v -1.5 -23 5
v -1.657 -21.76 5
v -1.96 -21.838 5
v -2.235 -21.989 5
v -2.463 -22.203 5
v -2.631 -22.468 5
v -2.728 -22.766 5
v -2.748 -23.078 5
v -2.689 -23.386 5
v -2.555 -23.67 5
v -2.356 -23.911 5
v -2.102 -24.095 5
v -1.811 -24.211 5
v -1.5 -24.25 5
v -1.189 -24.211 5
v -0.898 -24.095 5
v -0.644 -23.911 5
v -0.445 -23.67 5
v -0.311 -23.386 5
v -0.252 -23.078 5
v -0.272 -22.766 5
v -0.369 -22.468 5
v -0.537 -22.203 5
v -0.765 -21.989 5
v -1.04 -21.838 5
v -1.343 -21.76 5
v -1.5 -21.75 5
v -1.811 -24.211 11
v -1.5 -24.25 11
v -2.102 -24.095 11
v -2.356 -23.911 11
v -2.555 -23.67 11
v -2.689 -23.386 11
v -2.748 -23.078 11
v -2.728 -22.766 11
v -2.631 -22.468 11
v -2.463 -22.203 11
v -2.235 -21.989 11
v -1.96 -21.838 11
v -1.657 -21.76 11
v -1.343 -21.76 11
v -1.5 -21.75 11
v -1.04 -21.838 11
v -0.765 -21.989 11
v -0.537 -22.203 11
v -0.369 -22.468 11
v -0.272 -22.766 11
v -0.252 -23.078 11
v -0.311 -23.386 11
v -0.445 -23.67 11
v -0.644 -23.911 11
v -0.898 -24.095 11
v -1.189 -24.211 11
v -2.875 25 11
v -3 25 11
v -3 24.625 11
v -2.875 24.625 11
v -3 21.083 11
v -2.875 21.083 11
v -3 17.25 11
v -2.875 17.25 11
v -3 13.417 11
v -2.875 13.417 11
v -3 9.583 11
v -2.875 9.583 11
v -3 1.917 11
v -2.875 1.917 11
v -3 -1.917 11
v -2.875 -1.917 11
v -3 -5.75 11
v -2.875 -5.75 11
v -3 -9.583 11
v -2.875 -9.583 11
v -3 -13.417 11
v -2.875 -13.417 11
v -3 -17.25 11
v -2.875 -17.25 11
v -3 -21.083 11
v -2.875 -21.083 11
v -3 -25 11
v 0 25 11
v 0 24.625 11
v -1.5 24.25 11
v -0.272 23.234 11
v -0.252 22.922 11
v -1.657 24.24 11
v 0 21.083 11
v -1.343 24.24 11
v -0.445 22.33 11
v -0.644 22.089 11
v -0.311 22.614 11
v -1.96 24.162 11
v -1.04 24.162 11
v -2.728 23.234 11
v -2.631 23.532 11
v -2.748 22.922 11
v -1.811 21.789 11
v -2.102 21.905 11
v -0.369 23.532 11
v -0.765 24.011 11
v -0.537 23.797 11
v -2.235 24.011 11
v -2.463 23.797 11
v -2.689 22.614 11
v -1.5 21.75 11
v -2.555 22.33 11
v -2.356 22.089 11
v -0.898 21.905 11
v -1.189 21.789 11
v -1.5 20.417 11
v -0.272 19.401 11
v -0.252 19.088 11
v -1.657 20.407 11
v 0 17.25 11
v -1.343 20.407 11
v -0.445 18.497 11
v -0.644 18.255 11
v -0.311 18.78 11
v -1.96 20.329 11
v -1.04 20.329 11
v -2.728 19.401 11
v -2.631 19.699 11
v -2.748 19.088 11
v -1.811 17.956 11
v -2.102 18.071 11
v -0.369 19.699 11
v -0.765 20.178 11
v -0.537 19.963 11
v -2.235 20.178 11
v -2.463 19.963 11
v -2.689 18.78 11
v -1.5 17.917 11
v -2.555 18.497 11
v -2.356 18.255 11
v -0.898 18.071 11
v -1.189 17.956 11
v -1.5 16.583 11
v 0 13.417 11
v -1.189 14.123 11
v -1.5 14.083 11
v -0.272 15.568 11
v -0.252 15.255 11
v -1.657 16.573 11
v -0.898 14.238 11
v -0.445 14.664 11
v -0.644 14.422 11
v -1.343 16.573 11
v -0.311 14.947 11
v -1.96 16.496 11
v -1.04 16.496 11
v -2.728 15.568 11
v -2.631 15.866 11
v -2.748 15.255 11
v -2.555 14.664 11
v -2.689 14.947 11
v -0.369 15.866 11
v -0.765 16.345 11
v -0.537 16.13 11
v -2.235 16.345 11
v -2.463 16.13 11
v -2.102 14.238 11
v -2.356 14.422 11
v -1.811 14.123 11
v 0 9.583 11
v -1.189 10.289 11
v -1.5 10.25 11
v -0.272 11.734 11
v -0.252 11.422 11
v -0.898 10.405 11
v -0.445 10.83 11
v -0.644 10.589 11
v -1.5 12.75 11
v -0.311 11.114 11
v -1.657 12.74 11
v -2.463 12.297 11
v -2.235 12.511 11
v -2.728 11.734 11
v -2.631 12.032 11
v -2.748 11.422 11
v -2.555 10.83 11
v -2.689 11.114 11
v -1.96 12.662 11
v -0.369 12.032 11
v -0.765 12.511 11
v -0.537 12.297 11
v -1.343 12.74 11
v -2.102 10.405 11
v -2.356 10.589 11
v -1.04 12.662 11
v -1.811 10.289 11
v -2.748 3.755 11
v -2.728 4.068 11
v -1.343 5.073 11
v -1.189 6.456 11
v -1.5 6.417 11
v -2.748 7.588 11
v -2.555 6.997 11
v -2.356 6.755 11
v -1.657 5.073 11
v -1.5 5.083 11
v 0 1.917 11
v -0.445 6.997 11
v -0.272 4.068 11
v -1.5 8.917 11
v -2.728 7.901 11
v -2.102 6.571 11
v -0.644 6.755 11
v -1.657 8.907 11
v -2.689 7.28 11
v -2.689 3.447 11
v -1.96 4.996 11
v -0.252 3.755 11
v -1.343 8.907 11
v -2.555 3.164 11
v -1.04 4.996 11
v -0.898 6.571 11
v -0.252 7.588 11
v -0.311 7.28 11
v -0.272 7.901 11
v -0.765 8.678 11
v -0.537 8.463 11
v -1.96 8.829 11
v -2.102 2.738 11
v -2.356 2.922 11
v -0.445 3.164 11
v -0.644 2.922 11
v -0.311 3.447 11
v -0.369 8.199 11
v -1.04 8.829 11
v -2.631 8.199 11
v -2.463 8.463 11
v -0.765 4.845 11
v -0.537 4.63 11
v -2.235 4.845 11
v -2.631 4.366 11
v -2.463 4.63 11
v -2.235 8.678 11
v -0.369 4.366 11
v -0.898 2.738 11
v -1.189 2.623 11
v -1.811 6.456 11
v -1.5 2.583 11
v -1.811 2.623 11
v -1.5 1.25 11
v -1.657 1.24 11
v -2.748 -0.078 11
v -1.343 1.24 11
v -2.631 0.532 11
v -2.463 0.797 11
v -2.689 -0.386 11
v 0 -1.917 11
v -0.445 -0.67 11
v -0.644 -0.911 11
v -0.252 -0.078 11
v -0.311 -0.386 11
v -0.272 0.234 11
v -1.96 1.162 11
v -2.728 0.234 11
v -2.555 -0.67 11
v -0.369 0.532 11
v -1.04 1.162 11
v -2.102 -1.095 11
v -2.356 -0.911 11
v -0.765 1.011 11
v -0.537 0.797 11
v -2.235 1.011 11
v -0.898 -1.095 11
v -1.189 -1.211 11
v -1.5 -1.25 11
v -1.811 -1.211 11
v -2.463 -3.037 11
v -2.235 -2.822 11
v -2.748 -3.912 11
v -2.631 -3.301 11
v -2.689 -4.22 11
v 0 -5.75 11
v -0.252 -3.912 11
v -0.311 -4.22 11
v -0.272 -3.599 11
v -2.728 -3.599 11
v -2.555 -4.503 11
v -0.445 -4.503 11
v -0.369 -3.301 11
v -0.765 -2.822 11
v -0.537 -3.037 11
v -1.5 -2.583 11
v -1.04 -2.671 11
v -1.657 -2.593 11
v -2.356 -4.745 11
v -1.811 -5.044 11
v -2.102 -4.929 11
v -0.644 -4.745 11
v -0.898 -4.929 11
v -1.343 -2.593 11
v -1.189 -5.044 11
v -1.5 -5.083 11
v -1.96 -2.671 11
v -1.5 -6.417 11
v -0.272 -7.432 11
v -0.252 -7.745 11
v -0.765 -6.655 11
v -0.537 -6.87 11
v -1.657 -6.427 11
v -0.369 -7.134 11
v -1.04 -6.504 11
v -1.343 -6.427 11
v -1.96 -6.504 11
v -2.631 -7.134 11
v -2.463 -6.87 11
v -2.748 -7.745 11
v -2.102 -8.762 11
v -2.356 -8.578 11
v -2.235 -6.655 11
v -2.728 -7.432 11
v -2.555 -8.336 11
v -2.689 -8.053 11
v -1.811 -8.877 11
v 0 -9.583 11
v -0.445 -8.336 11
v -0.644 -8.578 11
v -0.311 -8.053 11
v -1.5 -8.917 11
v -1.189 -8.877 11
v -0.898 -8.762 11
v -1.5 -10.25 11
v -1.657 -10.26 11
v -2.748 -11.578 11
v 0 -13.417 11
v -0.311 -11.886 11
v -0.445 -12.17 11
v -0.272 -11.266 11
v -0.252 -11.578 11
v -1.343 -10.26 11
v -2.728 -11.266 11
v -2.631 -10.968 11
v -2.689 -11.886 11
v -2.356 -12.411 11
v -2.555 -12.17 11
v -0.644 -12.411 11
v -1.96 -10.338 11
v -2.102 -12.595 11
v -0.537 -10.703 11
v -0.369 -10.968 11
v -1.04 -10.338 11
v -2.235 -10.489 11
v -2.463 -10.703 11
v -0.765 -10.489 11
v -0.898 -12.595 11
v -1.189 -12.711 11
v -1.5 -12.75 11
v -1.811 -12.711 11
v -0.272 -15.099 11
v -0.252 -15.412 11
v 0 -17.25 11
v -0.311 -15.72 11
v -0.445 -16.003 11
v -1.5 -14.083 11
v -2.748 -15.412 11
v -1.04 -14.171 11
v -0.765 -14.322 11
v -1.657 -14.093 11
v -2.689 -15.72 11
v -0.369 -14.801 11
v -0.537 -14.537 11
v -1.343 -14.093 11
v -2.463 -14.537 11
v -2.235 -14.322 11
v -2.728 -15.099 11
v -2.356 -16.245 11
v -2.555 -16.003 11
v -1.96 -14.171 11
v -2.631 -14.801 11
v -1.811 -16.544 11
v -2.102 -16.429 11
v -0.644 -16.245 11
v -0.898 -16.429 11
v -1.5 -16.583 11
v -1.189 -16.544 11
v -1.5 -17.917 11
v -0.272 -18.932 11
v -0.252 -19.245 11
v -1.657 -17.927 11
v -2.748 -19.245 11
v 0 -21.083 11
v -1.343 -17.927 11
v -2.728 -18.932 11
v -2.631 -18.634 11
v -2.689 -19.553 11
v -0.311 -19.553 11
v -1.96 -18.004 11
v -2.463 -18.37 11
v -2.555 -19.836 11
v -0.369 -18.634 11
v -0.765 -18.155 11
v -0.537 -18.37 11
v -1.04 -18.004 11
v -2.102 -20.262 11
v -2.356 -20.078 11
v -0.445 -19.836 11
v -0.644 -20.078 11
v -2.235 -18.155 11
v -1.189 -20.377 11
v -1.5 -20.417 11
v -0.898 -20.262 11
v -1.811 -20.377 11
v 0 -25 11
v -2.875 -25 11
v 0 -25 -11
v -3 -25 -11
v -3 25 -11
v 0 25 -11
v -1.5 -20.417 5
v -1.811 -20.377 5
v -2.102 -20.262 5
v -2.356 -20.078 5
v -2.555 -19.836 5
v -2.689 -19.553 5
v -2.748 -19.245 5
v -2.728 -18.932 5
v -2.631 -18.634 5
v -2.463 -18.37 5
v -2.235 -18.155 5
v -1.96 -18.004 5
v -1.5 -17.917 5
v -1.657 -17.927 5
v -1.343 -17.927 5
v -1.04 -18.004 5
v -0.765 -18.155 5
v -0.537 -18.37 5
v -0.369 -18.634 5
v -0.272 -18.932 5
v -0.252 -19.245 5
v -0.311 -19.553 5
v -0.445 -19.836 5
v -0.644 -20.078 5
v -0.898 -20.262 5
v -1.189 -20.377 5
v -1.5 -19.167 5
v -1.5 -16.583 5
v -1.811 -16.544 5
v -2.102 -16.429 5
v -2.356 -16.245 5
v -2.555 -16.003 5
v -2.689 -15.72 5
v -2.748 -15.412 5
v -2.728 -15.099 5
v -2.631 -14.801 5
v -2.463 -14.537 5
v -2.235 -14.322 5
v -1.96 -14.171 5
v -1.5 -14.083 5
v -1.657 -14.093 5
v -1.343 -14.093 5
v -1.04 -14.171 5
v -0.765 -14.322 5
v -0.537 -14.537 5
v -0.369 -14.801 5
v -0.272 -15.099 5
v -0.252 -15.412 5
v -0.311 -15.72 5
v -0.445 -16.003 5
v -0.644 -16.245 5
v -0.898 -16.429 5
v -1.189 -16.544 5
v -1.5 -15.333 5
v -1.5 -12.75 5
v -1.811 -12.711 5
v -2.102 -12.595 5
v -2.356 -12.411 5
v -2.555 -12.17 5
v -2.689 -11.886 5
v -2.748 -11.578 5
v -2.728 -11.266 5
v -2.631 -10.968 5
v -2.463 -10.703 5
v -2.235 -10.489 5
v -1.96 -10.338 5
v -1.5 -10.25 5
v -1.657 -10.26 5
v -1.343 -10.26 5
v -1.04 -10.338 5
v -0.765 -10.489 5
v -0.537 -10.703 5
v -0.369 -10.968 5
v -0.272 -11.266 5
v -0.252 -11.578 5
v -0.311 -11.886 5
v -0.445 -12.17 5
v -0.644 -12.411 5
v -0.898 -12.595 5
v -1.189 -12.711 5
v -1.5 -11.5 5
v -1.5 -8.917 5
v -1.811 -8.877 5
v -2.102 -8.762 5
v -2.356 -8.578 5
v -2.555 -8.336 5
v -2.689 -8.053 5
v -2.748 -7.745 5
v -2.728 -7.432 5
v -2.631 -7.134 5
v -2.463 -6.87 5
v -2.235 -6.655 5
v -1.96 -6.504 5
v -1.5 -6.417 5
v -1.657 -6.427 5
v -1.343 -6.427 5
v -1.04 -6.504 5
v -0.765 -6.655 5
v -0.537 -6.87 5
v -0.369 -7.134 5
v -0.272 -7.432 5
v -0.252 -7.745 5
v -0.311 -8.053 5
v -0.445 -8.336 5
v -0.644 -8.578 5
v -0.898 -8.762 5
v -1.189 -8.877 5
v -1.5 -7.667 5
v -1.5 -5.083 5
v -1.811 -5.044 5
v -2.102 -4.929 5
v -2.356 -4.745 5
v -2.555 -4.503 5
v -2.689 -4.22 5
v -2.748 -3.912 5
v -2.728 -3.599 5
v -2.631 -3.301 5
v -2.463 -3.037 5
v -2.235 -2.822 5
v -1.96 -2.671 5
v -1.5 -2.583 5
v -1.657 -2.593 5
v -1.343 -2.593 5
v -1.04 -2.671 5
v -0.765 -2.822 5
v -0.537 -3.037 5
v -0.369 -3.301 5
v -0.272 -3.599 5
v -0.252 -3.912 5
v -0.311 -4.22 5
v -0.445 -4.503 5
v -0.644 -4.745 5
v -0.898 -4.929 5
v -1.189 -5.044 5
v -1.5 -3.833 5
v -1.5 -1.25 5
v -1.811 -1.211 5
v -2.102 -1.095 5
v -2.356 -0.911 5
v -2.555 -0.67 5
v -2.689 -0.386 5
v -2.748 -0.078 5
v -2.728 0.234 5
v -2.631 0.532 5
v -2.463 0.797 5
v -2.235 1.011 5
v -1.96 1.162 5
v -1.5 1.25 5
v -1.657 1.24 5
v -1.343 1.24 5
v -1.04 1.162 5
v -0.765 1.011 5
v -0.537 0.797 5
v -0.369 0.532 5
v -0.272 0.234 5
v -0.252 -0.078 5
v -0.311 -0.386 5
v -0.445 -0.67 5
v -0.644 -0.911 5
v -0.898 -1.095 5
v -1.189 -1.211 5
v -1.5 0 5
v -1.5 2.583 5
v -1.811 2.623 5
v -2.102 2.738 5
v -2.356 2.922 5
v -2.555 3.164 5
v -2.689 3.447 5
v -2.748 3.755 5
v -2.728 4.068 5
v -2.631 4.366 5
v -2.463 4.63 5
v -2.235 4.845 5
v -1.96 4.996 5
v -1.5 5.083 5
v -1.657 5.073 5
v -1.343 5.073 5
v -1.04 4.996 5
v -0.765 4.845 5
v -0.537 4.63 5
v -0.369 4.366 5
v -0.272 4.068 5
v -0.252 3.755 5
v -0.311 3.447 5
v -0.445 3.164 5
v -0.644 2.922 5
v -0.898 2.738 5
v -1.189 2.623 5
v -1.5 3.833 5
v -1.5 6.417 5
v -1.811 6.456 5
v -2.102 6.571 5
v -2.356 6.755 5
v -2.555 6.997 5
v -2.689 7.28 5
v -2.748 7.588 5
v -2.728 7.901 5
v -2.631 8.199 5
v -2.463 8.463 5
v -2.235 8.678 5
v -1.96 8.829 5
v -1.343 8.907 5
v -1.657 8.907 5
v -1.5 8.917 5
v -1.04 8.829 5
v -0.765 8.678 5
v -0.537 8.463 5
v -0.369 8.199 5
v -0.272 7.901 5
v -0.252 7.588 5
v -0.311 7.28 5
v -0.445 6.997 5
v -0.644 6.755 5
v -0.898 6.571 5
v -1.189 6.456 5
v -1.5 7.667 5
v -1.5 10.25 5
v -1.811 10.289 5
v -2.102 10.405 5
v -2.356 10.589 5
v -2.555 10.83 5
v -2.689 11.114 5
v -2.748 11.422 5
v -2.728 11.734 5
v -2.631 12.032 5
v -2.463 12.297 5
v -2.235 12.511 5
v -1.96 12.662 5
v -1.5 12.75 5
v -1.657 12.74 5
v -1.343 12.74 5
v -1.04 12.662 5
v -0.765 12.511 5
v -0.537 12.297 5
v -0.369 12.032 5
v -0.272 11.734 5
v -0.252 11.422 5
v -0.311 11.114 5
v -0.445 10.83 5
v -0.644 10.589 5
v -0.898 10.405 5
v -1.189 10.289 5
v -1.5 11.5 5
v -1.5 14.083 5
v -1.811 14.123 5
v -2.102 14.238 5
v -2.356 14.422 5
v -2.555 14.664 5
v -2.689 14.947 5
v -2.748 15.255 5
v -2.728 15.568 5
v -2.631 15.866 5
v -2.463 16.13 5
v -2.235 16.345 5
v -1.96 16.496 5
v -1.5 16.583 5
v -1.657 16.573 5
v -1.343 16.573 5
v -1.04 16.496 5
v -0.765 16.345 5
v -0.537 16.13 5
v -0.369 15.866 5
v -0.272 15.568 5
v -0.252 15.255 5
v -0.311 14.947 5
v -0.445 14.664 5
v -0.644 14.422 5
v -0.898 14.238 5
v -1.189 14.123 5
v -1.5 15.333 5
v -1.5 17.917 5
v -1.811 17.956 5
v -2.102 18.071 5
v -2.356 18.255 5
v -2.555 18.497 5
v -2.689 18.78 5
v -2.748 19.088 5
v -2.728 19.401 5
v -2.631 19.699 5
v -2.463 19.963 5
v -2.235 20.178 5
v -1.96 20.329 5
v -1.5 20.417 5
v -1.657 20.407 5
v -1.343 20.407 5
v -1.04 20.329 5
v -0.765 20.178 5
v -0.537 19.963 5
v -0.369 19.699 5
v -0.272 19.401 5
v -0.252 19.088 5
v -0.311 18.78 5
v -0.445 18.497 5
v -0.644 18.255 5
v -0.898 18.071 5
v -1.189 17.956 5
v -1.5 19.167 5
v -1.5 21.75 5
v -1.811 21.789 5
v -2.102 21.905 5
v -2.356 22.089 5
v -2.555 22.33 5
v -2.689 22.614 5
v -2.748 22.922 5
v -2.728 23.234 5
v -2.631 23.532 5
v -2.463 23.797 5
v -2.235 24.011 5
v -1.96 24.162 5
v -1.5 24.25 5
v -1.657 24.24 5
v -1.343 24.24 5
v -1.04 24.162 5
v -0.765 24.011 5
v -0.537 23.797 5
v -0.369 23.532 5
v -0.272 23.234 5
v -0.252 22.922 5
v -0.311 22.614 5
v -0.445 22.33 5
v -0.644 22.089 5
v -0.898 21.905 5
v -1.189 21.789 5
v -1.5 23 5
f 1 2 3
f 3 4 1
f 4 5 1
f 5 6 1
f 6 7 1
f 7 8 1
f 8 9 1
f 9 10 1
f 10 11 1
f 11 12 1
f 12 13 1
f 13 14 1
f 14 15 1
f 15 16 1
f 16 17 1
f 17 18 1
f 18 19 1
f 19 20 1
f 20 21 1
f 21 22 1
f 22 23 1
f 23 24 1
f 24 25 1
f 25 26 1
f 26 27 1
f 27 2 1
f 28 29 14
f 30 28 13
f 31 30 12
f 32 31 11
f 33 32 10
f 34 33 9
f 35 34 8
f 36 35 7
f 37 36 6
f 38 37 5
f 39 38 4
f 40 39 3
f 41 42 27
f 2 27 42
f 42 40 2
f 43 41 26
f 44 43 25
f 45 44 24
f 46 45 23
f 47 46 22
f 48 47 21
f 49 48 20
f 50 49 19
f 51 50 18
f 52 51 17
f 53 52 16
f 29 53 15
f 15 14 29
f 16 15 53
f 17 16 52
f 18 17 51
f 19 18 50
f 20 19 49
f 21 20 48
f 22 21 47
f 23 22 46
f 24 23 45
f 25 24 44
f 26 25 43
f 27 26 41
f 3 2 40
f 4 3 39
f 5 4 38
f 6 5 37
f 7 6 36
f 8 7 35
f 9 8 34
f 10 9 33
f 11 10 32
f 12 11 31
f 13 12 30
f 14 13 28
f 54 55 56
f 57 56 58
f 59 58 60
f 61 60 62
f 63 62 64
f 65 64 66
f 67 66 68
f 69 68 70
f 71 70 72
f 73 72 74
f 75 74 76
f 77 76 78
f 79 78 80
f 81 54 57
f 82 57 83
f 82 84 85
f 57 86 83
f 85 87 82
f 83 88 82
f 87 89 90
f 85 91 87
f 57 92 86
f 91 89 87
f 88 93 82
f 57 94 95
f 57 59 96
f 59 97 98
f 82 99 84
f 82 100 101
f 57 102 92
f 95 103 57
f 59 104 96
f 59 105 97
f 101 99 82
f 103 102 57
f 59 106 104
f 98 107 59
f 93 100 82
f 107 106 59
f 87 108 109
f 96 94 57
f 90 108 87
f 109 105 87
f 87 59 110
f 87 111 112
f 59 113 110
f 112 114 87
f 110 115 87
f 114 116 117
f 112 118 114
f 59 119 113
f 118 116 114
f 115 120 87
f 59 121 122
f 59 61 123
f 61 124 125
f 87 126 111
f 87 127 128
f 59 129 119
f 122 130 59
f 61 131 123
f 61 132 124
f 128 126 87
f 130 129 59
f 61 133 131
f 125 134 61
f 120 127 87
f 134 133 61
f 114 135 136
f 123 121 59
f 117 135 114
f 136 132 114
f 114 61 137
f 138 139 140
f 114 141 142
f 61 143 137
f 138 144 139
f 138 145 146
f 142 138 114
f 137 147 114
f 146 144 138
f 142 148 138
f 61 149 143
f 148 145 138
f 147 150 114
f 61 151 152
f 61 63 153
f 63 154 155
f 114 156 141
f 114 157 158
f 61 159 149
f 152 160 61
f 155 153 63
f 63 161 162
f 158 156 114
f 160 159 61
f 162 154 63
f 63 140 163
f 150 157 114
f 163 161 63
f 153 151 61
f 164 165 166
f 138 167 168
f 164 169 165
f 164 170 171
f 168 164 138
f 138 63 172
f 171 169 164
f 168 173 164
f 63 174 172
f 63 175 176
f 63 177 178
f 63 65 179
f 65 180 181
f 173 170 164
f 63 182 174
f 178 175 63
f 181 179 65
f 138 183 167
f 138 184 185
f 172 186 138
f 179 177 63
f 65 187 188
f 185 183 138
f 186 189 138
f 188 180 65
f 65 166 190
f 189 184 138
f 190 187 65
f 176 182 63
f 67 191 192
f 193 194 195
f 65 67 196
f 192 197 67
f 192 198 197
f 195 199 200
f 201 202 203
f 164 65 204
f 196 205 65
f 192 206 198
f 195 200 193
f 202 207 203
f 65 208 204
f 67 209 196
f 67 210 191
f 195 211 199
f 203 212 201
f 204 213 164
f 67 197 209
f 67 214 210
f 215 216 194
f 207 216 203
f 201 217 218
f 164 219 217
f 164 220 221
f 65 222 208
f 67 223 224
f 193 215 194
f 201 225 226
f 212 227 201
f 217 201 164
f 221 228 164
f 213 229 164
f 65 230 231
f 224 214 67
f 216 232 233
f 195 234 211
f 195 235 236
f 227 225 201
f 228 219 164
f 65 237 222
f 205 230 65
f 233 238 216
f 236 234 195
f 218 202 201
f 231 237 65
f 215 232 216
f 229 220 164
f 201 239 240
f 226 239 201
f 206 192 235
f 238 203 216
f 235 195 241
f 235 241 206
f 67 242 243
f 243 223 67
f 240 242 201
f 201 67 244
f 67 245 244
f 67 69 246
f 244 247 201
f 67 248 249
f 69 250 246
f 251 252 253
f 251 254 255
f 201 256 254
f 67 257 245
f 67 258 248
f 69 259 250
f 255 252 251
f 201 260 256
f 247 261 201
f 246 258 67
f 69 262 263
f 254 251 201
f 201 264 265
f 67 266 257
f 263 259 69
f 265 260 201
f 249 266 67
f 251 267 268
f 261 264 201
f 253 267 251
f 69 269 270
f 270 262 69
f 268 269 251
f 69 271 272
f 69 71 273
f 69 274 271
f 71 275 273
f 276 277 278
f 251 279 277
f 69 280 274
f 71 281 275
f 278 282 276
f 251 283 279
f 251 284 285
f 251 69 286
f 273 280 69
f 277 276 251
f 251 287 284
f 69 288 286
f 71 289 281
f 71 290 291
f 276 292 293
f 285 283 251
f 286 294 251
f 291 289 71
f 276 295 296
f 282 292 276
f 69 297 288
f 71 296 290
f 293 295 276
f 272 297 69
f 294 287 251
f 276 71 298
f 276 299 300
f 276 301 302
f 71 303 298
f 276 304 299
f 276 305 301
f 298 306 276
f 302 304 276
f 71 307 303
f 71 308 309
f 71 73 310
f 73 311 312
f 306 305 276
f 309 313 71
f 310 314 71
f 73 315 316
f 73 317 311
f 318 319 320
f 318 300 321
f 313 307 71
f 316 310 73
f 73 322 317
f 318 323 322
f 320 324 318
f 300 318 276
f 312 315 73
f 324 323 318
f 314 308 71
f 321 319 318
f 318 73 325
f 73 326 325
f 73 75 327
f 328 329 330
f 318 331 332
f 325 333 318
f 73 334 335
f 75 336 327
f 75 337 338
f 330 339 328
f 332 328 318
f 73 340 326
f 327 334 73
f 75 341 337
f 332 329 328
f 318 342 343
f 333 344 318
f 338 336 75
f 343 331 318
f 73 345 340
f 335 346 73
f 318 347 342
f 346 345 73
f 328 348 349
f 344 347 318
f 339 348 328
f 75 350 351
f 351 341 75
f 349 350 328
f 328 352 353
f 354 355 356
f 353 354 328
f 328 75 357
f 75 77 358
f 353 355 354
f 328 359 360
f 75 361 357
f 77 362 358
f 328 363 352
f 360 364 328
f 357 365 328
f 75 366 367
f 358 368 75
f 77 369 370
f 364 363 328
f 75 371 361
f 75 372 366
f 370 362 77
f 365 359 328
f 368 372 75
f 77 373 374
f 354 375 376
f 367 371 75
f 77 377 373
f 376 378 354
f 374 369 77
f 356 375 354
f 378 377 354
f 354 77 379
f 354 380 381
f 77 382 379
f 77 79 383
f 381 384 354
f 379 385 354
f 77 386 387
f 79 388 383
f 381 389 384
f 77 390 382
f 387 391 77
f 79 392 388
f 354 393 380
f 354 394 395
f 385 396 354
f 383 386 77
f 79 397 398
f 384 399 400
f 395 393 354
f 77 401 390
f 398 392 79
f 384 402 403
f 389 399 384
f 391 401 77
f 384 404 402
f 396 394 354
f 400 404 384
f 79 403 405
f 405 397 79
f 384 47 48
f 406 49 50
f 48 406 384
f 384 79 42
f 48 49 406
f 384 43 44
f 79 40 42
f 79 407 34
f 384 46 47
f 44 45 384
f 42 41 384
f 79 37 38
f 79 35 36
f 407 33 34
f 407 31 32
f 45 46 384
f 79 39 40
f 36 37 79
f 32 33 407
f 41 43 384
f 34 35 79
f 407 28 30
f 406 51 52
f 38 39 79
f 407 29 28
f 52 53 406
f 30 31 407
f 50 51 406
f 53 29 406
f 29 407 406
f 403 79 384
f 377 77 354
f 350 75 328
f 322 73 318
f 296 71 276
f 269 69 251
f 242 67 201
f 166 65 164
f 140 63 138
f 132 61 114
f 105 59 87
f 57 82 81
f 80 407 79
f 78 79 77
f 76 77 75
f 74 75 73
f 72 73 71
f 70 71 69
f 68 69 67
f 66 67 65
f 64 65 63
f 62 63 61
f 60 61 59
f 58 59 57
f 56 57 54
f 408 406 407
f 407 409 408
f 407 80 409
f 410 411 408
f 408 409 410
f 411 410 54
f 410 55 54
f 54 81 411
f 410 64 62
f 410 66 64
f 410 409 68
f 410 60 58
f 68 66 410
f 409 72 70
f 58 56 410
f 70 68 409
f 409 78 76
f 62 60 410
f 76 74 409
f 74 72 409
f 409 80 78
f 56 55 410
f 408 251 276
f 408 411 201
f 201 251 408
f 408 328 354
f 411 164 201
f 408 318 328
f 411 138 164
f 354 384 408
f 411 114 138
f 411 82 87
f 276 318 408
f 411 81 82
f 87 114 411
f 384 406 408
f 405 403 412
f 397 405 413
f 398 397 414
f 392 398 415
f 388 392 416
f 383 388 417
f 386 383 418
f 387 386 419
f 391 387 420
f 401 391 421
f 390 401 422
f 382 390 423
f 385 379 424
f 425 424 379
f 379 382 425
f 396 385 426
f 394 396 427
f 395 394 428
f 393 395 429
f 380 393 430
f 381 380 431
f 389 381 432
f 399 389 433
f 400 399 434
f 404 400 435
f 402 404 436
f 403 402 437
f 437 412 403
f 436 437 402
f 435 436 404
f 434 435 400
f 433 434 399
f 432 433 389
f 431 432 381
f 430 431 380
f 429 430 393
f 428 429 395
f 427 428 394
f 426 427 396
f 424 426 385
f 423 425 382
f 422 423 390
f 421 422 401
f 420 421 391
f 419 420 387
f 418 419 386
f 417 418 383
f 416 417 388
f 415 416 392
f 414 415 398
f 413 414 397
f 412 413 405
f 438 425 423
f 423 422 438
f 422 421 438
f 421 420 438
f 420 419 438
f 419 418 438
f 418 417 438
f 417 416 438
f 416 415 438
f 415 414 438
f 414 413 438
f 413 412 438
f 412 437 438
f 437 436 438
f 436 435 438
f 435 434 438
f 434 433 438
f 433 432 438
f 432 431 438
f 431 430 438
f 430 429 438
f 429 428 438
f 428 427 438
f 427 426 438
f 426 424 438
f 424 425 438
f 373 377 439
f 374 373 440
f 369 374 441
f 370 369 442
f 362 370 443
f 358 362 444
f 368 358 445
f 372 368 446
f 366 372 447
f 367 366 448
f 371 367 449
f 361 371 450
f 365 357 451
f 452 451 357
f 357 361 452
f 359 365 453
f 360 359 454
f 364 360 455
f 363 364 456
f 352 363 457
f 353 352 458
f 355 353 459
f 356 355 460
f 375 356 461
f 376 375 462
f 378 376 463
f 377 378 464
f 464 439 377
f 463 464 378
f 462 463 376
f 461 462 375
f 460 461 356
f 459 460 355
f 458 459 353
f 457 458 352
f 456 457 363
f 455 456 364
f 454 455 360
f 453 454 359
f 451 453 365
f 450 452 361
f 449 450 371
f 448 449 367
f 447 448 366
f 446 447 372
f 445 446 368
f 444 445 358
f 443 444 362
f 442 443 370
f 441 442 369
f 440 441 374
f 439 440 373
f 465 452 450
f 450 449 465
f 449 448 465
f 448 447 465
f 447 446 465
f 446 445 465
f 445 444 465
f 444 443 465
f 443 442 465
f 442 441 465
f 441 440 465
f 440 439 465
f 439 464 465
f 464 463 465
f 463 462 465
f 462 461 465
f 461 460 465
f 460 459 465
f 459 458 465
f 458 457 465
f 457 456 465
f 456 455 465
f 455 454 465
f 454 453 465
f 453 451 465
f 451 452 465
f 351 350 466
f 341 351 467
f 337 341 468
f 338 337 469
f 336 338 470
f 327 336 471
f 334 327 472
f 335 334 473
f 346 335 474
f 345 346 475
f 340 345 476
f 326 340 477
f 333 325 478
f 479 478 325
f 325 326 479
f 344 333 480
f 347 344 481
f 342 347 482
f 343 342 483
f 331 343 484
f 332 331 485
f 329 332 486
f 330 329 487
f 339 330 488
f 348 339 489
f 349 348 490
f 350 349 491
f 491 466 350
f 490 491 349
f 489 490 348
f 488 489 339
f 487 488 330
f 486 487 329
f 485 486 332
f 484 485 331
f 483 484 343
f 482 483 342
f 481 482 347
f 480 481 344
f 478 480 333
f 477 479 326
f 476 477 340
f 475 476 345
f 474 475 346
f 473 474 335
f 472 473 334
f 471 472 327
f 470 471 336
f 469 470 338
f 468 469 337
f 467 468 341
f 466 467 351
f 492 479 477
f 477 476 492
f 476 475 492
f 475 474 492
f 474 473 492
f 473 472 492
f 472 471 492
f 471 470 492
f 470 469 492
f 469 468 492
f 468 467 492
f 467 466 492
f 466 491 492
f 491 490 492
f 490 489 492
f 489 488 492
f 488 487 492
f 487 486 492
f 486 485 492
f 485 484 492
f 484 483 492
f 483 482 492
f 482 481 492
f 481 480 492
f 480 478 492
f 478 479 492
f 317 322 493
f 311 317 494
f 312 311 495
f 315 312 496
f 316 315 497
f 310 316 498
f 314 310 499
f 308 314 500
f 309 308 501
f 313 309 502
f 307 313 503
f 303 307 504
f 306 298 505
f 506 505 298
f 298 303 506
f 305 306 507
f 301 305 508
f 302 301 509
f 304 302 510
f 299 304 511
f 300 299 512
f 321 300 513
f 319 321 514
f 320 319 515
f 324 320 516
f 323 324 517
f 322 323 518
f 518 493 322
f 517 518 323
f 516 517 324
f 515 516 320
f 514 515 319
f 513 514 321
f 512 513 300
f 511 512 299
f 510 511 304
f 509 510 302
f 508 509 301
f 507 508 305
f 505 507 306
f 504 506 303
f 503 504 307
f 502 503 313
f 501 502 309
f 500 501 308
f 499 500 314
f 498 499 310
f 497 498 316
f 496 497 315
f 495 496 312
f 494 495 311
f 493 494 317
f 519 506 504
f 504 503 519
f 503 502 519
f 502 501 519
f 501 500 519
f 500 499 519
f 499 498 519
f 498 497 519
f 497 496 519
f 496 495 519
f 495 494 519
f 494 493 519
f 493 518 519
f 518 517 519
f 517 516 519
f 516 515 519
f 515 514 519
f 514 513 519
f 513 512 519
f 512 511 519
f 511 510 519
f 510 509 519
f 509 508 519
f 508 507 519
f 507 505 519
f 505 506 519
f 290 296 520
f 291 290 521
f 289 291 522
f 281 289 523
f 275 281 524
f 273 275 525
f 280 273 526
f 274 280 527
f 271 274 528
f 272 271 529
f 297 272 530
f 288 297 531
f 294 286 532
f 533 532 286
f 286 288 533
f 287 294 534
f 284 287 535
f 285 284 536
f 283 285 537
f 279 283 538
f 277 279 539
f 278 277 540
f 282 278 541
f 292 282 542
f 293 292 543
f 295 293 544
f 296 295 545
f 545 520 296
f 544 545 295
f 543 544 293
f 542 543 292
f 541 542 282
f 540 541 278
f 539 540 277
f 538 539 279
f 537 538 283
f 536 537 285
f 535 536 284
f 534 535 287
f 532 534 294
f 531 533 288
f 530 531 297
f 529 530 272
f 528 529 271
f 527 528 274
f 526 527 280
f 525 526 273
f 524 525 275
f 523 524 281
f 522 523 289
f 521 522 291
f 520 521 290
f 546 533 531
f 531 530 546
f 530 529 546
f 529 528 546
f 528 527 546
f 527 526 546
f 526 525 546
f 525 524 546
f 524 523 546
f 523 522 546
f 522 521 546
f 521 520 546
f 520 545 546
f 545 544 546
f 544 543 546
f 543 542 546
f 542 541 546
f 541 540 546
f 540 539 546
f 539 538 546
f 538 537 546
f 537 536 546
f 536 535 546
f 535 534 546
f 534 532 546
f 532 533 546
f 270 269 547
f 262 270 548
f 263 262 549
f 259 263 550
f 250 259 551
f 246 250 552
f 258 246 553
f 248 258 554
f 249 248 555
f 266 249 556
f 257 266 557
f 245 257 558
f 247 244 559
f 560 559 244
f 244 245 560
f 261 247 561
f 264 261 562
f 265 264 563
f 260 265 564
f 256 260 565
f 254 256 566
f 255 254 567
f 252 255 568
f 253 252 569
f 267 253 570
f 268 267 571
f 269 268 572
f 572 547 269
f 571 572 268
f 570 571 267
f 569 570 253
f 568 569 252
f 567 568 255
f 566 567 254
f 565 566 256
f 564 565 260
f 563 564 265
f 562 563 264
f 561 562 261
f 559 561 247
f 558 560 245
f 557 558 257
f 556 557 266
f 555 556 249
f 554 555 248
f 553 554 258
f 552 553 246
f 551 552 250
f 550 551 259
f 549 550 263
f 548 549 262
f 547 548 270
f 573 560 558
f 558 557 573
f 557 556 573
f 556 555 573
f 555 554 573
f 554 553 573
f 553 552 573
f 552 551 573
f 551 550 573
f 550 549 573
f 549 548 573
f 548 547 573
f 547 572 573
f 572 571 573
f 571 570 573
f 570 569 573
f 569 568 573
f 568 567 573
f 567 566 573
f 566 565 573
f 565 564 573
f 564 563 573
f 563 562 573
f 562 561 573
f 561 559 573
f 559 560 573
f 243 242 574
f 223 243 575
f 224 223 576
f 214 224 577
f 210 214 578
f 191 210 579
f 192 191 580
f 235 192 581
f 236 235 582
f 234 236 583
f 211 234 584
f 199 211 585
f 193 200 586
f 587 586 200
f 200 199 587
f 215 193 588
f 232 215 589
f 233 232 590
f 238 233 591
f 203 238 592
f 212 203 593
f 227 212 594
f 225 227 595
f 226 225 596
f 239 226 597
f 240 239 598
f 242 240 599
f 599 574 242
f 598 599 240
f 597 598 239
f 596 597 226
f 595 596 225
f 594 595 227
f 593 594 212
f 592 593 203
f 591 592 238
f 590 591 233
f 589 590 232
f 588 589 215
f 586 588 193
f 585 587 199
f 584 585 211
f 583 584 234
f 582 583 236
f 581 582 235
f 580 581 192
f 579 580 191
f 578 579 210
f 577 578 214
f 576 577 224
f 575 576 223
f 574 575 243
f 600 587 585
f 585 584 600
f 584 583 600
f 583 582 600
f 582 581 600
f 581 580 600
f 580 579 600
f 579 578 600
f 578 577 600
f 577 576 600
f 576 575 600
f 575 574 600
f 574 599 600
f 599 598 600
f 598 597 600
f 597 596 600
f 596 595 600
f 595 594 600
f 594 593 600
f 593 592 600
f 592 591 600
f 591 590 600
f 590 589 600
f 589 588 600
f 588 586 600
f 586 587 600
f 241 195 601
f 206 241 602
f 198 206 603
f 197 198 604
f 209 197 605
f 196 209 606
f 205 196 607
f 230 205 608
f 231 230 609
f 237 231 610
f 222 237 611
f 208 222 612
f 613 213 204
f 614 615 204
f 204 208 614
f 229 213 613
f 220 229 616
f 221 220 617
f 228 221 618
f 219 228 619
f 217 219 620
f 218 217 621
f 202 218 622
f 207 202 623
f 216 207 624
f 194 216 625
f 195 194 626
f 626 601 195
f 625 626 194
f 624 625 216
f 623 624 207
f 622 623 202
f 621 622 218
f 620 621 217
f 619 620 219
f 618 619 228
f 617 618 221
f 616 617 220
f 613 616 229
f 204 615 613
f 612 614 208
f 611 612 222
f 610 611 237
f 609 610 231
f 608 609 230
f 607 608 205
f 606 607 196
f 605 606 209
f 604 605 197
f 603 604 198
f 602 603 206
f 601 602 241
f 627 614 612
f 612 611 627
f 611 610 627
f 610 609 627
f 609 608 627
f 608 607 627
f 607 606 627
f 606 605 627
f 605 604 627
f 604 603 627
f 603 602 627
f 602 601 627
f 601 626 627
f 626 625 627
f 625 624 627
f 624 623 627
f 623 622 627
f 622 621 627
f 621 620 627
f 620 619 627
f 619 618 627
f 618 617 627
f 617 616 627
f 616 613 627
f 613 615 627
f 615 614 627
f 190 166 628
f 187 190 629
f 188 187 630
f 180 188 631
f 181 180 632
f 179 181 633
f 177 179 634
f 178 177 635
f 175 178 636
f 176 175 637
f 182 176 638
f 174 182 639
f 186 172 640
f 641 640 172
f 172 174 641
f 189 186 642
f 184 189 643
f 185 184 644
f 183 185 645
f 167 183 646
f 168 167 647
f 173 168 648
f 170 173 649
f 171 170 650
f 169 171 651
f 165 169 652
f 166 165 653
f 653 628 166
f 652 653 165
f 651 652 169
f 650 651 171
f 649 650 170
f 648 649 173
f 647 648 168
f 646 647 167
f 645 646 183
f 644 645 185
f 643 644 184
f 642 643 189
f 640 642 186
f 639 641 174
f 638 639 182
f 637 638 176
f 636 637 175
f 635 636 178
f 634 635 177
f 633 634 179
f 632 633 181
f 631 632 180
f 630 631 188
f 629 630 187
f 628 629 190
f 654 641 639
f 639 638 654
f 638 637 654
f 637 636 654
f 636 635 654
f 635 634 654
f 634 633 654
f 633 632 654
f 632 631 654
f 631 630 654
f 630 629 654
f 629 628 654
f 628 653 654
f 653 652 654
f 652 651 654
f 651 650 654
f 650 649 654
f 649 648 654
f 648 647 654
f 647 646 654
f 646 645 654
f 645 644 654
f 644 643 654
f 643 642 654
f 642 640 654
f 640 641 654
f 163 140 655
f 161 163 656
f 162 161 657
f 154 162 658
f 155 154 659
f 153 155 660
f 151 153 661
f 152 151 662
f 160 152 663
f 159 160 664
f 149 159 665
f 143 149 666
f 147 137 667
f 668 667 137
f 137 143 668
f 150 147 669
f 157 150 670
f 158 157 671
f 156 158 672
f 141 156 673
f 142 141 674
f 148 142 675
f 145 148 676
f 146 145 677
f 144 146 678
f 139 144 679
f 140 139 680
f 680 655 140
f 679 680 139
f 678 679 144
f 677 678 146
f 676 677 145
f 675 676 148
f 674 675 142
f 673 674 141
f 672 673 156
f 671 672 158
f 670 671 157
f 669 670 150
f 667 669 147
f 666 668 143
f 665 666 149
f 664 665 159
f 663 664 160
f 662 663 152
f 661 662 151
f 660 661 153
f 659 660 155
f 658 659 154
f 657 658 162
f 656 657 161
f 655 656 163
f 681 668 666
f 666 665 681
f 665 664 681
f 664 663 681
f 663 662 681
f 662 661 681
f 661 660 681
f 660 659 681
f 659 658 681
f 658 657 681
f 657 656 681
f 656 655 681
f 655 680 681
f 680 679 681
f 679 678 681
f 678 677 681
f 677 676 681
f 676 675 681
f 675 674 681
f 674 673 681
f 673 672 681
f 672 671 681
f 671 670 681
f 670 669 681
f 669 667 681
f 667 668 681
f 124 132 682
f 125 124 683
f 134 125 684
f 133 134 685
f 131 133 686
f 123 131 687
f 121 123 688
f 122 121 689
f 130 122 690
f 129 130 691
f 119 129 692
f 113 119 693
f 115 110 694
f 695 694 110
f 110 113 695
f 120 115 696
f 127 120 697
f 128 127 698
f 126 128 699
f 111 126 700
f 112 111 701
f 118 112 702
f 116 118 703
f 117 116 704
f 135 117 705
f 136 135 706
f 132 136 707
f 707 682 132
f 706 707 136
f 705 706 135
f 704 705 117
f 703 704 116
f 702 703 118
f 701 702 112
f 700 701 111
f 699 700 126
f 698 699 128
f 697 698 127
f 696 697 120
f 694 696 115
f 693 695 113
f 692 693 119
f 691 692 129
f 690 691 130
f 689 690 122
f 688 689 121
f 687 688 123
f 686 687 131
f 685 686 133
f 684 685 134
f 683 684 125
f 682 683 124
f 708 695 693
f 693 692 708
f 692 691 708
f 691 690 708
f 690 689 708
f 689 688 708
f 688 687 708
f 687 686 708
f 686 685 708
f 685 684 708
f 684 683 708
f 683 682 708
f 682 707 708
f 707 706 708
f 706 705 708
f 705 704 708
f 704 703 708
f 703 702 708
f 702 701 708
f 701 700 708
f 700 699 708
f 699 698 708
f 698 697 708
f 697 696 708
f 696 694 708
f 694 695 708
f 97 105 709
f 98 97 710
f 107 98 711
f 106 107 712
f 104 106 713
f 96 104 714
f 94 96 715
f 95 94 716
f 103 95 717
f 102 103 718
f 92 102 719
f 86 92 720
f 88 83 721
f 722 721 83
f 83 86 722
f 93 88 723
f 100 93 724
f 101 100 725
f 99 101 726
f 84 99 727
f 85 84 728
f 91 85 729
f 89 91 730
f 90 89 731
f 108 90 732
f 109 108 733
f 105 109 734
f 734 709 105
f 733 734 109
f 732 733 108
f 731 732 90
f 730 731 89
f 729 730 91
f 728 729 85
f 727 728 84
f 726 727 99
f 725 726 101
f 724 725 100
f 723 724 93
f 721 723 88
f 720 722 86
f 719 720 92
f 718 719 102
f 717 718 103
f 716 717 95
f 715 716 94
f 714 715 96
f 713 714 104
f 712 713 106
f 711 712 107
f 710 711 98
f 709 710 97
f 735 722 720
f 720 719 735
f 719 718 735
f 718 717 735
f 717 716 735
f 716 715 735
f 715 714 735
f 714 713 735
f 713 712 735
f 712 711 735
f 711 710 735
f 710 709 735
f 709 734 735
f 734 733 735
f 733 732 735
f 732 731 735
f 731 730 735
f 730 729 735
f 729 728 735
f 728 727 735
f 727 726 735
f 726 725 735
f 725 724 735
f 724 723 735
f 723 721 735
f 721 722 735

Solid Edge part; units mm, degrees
sketch "Sketch1" plane through (0, 0, 0) normal (1, 0, 0) x (0, 1, 0)
  line L0 (-25, -11) -> (25, -11)
  line L1 (25, -11) -> (25, 11)
  line L2 (25, 11) -> (-25, 11)
  line L3 (-25, 11) -> (-25, -11)
  dimension "D1" = 50
  dimension "D2" = 22
extrude "Protrusion1" add sketch "Sketch1" against normal blind 3
sketch "Sketch2" plane through (-1.5, 0, 11) normal (0, 0, 1) x (0, 1, 0)
  circle A0 centre (-23, 0) radius 1.25
  circle A1 centre (-19.1667, 0) radius 1.25
  circle A2 centre (-15.3333, 0) radius 1.25
  circle A3 centre (-11.5, 0) radius 1.25
  circle A4 centre (-7.6667, 0) radius 1.25
  circle A5 centre (-3.8333, 0) radius 1.25
  circle A6 centre (0, 0) radius 1.25
  circle A7 centre (3.8333, 0) radius 1.25
  circle A8 centre (7.6667, 0) radius 1.25
  circle A9 centre (11.5, 0) radius 1.25
  circle A10 centre (15.3333, 0) radius 1.25
  circle A11 centre (19.1667, 0) radius 1.25
  circle A12 centre (23, 0) radius 1.25
  dimension "D1" = 2.5
  dimension "D2" = 2.5
  dimension "D3" = 2.5
  dimension "D4" = 2.5
  dimension "D5" = 2.5
  dimension "D6" = 2.5
  dimension "D7" = 2.5
  dimension "D8" = 2.5
  dimension "D9" = 2.5
  dimension "D10" = 2.5
  dimension "D11" = 2.5
  dimension "D12" = 2.5
  dimension "D13" = 2.5
  dimension "D14" = 2
  dimension "D15" = 2
  dimension "D16" = 46
  dimension "D17" = 23
  dimension "D18" = 11.5
  dimension "D19" = 11.5
  dimension "D20" = 3.8333
  dimension "D21" = 3.8333
  dimension "D22" = 3.8333
  dimension "D23" = 3.8333
  dimension "D24" = 3.8333
  dimension "D25" = 3.8333
  dimension "D26" = 3.8333
  dimension "D27" = 3.8333
extrude "ExtrudedCutout_49" cut sketch "Sketch2" against normal blind 6
